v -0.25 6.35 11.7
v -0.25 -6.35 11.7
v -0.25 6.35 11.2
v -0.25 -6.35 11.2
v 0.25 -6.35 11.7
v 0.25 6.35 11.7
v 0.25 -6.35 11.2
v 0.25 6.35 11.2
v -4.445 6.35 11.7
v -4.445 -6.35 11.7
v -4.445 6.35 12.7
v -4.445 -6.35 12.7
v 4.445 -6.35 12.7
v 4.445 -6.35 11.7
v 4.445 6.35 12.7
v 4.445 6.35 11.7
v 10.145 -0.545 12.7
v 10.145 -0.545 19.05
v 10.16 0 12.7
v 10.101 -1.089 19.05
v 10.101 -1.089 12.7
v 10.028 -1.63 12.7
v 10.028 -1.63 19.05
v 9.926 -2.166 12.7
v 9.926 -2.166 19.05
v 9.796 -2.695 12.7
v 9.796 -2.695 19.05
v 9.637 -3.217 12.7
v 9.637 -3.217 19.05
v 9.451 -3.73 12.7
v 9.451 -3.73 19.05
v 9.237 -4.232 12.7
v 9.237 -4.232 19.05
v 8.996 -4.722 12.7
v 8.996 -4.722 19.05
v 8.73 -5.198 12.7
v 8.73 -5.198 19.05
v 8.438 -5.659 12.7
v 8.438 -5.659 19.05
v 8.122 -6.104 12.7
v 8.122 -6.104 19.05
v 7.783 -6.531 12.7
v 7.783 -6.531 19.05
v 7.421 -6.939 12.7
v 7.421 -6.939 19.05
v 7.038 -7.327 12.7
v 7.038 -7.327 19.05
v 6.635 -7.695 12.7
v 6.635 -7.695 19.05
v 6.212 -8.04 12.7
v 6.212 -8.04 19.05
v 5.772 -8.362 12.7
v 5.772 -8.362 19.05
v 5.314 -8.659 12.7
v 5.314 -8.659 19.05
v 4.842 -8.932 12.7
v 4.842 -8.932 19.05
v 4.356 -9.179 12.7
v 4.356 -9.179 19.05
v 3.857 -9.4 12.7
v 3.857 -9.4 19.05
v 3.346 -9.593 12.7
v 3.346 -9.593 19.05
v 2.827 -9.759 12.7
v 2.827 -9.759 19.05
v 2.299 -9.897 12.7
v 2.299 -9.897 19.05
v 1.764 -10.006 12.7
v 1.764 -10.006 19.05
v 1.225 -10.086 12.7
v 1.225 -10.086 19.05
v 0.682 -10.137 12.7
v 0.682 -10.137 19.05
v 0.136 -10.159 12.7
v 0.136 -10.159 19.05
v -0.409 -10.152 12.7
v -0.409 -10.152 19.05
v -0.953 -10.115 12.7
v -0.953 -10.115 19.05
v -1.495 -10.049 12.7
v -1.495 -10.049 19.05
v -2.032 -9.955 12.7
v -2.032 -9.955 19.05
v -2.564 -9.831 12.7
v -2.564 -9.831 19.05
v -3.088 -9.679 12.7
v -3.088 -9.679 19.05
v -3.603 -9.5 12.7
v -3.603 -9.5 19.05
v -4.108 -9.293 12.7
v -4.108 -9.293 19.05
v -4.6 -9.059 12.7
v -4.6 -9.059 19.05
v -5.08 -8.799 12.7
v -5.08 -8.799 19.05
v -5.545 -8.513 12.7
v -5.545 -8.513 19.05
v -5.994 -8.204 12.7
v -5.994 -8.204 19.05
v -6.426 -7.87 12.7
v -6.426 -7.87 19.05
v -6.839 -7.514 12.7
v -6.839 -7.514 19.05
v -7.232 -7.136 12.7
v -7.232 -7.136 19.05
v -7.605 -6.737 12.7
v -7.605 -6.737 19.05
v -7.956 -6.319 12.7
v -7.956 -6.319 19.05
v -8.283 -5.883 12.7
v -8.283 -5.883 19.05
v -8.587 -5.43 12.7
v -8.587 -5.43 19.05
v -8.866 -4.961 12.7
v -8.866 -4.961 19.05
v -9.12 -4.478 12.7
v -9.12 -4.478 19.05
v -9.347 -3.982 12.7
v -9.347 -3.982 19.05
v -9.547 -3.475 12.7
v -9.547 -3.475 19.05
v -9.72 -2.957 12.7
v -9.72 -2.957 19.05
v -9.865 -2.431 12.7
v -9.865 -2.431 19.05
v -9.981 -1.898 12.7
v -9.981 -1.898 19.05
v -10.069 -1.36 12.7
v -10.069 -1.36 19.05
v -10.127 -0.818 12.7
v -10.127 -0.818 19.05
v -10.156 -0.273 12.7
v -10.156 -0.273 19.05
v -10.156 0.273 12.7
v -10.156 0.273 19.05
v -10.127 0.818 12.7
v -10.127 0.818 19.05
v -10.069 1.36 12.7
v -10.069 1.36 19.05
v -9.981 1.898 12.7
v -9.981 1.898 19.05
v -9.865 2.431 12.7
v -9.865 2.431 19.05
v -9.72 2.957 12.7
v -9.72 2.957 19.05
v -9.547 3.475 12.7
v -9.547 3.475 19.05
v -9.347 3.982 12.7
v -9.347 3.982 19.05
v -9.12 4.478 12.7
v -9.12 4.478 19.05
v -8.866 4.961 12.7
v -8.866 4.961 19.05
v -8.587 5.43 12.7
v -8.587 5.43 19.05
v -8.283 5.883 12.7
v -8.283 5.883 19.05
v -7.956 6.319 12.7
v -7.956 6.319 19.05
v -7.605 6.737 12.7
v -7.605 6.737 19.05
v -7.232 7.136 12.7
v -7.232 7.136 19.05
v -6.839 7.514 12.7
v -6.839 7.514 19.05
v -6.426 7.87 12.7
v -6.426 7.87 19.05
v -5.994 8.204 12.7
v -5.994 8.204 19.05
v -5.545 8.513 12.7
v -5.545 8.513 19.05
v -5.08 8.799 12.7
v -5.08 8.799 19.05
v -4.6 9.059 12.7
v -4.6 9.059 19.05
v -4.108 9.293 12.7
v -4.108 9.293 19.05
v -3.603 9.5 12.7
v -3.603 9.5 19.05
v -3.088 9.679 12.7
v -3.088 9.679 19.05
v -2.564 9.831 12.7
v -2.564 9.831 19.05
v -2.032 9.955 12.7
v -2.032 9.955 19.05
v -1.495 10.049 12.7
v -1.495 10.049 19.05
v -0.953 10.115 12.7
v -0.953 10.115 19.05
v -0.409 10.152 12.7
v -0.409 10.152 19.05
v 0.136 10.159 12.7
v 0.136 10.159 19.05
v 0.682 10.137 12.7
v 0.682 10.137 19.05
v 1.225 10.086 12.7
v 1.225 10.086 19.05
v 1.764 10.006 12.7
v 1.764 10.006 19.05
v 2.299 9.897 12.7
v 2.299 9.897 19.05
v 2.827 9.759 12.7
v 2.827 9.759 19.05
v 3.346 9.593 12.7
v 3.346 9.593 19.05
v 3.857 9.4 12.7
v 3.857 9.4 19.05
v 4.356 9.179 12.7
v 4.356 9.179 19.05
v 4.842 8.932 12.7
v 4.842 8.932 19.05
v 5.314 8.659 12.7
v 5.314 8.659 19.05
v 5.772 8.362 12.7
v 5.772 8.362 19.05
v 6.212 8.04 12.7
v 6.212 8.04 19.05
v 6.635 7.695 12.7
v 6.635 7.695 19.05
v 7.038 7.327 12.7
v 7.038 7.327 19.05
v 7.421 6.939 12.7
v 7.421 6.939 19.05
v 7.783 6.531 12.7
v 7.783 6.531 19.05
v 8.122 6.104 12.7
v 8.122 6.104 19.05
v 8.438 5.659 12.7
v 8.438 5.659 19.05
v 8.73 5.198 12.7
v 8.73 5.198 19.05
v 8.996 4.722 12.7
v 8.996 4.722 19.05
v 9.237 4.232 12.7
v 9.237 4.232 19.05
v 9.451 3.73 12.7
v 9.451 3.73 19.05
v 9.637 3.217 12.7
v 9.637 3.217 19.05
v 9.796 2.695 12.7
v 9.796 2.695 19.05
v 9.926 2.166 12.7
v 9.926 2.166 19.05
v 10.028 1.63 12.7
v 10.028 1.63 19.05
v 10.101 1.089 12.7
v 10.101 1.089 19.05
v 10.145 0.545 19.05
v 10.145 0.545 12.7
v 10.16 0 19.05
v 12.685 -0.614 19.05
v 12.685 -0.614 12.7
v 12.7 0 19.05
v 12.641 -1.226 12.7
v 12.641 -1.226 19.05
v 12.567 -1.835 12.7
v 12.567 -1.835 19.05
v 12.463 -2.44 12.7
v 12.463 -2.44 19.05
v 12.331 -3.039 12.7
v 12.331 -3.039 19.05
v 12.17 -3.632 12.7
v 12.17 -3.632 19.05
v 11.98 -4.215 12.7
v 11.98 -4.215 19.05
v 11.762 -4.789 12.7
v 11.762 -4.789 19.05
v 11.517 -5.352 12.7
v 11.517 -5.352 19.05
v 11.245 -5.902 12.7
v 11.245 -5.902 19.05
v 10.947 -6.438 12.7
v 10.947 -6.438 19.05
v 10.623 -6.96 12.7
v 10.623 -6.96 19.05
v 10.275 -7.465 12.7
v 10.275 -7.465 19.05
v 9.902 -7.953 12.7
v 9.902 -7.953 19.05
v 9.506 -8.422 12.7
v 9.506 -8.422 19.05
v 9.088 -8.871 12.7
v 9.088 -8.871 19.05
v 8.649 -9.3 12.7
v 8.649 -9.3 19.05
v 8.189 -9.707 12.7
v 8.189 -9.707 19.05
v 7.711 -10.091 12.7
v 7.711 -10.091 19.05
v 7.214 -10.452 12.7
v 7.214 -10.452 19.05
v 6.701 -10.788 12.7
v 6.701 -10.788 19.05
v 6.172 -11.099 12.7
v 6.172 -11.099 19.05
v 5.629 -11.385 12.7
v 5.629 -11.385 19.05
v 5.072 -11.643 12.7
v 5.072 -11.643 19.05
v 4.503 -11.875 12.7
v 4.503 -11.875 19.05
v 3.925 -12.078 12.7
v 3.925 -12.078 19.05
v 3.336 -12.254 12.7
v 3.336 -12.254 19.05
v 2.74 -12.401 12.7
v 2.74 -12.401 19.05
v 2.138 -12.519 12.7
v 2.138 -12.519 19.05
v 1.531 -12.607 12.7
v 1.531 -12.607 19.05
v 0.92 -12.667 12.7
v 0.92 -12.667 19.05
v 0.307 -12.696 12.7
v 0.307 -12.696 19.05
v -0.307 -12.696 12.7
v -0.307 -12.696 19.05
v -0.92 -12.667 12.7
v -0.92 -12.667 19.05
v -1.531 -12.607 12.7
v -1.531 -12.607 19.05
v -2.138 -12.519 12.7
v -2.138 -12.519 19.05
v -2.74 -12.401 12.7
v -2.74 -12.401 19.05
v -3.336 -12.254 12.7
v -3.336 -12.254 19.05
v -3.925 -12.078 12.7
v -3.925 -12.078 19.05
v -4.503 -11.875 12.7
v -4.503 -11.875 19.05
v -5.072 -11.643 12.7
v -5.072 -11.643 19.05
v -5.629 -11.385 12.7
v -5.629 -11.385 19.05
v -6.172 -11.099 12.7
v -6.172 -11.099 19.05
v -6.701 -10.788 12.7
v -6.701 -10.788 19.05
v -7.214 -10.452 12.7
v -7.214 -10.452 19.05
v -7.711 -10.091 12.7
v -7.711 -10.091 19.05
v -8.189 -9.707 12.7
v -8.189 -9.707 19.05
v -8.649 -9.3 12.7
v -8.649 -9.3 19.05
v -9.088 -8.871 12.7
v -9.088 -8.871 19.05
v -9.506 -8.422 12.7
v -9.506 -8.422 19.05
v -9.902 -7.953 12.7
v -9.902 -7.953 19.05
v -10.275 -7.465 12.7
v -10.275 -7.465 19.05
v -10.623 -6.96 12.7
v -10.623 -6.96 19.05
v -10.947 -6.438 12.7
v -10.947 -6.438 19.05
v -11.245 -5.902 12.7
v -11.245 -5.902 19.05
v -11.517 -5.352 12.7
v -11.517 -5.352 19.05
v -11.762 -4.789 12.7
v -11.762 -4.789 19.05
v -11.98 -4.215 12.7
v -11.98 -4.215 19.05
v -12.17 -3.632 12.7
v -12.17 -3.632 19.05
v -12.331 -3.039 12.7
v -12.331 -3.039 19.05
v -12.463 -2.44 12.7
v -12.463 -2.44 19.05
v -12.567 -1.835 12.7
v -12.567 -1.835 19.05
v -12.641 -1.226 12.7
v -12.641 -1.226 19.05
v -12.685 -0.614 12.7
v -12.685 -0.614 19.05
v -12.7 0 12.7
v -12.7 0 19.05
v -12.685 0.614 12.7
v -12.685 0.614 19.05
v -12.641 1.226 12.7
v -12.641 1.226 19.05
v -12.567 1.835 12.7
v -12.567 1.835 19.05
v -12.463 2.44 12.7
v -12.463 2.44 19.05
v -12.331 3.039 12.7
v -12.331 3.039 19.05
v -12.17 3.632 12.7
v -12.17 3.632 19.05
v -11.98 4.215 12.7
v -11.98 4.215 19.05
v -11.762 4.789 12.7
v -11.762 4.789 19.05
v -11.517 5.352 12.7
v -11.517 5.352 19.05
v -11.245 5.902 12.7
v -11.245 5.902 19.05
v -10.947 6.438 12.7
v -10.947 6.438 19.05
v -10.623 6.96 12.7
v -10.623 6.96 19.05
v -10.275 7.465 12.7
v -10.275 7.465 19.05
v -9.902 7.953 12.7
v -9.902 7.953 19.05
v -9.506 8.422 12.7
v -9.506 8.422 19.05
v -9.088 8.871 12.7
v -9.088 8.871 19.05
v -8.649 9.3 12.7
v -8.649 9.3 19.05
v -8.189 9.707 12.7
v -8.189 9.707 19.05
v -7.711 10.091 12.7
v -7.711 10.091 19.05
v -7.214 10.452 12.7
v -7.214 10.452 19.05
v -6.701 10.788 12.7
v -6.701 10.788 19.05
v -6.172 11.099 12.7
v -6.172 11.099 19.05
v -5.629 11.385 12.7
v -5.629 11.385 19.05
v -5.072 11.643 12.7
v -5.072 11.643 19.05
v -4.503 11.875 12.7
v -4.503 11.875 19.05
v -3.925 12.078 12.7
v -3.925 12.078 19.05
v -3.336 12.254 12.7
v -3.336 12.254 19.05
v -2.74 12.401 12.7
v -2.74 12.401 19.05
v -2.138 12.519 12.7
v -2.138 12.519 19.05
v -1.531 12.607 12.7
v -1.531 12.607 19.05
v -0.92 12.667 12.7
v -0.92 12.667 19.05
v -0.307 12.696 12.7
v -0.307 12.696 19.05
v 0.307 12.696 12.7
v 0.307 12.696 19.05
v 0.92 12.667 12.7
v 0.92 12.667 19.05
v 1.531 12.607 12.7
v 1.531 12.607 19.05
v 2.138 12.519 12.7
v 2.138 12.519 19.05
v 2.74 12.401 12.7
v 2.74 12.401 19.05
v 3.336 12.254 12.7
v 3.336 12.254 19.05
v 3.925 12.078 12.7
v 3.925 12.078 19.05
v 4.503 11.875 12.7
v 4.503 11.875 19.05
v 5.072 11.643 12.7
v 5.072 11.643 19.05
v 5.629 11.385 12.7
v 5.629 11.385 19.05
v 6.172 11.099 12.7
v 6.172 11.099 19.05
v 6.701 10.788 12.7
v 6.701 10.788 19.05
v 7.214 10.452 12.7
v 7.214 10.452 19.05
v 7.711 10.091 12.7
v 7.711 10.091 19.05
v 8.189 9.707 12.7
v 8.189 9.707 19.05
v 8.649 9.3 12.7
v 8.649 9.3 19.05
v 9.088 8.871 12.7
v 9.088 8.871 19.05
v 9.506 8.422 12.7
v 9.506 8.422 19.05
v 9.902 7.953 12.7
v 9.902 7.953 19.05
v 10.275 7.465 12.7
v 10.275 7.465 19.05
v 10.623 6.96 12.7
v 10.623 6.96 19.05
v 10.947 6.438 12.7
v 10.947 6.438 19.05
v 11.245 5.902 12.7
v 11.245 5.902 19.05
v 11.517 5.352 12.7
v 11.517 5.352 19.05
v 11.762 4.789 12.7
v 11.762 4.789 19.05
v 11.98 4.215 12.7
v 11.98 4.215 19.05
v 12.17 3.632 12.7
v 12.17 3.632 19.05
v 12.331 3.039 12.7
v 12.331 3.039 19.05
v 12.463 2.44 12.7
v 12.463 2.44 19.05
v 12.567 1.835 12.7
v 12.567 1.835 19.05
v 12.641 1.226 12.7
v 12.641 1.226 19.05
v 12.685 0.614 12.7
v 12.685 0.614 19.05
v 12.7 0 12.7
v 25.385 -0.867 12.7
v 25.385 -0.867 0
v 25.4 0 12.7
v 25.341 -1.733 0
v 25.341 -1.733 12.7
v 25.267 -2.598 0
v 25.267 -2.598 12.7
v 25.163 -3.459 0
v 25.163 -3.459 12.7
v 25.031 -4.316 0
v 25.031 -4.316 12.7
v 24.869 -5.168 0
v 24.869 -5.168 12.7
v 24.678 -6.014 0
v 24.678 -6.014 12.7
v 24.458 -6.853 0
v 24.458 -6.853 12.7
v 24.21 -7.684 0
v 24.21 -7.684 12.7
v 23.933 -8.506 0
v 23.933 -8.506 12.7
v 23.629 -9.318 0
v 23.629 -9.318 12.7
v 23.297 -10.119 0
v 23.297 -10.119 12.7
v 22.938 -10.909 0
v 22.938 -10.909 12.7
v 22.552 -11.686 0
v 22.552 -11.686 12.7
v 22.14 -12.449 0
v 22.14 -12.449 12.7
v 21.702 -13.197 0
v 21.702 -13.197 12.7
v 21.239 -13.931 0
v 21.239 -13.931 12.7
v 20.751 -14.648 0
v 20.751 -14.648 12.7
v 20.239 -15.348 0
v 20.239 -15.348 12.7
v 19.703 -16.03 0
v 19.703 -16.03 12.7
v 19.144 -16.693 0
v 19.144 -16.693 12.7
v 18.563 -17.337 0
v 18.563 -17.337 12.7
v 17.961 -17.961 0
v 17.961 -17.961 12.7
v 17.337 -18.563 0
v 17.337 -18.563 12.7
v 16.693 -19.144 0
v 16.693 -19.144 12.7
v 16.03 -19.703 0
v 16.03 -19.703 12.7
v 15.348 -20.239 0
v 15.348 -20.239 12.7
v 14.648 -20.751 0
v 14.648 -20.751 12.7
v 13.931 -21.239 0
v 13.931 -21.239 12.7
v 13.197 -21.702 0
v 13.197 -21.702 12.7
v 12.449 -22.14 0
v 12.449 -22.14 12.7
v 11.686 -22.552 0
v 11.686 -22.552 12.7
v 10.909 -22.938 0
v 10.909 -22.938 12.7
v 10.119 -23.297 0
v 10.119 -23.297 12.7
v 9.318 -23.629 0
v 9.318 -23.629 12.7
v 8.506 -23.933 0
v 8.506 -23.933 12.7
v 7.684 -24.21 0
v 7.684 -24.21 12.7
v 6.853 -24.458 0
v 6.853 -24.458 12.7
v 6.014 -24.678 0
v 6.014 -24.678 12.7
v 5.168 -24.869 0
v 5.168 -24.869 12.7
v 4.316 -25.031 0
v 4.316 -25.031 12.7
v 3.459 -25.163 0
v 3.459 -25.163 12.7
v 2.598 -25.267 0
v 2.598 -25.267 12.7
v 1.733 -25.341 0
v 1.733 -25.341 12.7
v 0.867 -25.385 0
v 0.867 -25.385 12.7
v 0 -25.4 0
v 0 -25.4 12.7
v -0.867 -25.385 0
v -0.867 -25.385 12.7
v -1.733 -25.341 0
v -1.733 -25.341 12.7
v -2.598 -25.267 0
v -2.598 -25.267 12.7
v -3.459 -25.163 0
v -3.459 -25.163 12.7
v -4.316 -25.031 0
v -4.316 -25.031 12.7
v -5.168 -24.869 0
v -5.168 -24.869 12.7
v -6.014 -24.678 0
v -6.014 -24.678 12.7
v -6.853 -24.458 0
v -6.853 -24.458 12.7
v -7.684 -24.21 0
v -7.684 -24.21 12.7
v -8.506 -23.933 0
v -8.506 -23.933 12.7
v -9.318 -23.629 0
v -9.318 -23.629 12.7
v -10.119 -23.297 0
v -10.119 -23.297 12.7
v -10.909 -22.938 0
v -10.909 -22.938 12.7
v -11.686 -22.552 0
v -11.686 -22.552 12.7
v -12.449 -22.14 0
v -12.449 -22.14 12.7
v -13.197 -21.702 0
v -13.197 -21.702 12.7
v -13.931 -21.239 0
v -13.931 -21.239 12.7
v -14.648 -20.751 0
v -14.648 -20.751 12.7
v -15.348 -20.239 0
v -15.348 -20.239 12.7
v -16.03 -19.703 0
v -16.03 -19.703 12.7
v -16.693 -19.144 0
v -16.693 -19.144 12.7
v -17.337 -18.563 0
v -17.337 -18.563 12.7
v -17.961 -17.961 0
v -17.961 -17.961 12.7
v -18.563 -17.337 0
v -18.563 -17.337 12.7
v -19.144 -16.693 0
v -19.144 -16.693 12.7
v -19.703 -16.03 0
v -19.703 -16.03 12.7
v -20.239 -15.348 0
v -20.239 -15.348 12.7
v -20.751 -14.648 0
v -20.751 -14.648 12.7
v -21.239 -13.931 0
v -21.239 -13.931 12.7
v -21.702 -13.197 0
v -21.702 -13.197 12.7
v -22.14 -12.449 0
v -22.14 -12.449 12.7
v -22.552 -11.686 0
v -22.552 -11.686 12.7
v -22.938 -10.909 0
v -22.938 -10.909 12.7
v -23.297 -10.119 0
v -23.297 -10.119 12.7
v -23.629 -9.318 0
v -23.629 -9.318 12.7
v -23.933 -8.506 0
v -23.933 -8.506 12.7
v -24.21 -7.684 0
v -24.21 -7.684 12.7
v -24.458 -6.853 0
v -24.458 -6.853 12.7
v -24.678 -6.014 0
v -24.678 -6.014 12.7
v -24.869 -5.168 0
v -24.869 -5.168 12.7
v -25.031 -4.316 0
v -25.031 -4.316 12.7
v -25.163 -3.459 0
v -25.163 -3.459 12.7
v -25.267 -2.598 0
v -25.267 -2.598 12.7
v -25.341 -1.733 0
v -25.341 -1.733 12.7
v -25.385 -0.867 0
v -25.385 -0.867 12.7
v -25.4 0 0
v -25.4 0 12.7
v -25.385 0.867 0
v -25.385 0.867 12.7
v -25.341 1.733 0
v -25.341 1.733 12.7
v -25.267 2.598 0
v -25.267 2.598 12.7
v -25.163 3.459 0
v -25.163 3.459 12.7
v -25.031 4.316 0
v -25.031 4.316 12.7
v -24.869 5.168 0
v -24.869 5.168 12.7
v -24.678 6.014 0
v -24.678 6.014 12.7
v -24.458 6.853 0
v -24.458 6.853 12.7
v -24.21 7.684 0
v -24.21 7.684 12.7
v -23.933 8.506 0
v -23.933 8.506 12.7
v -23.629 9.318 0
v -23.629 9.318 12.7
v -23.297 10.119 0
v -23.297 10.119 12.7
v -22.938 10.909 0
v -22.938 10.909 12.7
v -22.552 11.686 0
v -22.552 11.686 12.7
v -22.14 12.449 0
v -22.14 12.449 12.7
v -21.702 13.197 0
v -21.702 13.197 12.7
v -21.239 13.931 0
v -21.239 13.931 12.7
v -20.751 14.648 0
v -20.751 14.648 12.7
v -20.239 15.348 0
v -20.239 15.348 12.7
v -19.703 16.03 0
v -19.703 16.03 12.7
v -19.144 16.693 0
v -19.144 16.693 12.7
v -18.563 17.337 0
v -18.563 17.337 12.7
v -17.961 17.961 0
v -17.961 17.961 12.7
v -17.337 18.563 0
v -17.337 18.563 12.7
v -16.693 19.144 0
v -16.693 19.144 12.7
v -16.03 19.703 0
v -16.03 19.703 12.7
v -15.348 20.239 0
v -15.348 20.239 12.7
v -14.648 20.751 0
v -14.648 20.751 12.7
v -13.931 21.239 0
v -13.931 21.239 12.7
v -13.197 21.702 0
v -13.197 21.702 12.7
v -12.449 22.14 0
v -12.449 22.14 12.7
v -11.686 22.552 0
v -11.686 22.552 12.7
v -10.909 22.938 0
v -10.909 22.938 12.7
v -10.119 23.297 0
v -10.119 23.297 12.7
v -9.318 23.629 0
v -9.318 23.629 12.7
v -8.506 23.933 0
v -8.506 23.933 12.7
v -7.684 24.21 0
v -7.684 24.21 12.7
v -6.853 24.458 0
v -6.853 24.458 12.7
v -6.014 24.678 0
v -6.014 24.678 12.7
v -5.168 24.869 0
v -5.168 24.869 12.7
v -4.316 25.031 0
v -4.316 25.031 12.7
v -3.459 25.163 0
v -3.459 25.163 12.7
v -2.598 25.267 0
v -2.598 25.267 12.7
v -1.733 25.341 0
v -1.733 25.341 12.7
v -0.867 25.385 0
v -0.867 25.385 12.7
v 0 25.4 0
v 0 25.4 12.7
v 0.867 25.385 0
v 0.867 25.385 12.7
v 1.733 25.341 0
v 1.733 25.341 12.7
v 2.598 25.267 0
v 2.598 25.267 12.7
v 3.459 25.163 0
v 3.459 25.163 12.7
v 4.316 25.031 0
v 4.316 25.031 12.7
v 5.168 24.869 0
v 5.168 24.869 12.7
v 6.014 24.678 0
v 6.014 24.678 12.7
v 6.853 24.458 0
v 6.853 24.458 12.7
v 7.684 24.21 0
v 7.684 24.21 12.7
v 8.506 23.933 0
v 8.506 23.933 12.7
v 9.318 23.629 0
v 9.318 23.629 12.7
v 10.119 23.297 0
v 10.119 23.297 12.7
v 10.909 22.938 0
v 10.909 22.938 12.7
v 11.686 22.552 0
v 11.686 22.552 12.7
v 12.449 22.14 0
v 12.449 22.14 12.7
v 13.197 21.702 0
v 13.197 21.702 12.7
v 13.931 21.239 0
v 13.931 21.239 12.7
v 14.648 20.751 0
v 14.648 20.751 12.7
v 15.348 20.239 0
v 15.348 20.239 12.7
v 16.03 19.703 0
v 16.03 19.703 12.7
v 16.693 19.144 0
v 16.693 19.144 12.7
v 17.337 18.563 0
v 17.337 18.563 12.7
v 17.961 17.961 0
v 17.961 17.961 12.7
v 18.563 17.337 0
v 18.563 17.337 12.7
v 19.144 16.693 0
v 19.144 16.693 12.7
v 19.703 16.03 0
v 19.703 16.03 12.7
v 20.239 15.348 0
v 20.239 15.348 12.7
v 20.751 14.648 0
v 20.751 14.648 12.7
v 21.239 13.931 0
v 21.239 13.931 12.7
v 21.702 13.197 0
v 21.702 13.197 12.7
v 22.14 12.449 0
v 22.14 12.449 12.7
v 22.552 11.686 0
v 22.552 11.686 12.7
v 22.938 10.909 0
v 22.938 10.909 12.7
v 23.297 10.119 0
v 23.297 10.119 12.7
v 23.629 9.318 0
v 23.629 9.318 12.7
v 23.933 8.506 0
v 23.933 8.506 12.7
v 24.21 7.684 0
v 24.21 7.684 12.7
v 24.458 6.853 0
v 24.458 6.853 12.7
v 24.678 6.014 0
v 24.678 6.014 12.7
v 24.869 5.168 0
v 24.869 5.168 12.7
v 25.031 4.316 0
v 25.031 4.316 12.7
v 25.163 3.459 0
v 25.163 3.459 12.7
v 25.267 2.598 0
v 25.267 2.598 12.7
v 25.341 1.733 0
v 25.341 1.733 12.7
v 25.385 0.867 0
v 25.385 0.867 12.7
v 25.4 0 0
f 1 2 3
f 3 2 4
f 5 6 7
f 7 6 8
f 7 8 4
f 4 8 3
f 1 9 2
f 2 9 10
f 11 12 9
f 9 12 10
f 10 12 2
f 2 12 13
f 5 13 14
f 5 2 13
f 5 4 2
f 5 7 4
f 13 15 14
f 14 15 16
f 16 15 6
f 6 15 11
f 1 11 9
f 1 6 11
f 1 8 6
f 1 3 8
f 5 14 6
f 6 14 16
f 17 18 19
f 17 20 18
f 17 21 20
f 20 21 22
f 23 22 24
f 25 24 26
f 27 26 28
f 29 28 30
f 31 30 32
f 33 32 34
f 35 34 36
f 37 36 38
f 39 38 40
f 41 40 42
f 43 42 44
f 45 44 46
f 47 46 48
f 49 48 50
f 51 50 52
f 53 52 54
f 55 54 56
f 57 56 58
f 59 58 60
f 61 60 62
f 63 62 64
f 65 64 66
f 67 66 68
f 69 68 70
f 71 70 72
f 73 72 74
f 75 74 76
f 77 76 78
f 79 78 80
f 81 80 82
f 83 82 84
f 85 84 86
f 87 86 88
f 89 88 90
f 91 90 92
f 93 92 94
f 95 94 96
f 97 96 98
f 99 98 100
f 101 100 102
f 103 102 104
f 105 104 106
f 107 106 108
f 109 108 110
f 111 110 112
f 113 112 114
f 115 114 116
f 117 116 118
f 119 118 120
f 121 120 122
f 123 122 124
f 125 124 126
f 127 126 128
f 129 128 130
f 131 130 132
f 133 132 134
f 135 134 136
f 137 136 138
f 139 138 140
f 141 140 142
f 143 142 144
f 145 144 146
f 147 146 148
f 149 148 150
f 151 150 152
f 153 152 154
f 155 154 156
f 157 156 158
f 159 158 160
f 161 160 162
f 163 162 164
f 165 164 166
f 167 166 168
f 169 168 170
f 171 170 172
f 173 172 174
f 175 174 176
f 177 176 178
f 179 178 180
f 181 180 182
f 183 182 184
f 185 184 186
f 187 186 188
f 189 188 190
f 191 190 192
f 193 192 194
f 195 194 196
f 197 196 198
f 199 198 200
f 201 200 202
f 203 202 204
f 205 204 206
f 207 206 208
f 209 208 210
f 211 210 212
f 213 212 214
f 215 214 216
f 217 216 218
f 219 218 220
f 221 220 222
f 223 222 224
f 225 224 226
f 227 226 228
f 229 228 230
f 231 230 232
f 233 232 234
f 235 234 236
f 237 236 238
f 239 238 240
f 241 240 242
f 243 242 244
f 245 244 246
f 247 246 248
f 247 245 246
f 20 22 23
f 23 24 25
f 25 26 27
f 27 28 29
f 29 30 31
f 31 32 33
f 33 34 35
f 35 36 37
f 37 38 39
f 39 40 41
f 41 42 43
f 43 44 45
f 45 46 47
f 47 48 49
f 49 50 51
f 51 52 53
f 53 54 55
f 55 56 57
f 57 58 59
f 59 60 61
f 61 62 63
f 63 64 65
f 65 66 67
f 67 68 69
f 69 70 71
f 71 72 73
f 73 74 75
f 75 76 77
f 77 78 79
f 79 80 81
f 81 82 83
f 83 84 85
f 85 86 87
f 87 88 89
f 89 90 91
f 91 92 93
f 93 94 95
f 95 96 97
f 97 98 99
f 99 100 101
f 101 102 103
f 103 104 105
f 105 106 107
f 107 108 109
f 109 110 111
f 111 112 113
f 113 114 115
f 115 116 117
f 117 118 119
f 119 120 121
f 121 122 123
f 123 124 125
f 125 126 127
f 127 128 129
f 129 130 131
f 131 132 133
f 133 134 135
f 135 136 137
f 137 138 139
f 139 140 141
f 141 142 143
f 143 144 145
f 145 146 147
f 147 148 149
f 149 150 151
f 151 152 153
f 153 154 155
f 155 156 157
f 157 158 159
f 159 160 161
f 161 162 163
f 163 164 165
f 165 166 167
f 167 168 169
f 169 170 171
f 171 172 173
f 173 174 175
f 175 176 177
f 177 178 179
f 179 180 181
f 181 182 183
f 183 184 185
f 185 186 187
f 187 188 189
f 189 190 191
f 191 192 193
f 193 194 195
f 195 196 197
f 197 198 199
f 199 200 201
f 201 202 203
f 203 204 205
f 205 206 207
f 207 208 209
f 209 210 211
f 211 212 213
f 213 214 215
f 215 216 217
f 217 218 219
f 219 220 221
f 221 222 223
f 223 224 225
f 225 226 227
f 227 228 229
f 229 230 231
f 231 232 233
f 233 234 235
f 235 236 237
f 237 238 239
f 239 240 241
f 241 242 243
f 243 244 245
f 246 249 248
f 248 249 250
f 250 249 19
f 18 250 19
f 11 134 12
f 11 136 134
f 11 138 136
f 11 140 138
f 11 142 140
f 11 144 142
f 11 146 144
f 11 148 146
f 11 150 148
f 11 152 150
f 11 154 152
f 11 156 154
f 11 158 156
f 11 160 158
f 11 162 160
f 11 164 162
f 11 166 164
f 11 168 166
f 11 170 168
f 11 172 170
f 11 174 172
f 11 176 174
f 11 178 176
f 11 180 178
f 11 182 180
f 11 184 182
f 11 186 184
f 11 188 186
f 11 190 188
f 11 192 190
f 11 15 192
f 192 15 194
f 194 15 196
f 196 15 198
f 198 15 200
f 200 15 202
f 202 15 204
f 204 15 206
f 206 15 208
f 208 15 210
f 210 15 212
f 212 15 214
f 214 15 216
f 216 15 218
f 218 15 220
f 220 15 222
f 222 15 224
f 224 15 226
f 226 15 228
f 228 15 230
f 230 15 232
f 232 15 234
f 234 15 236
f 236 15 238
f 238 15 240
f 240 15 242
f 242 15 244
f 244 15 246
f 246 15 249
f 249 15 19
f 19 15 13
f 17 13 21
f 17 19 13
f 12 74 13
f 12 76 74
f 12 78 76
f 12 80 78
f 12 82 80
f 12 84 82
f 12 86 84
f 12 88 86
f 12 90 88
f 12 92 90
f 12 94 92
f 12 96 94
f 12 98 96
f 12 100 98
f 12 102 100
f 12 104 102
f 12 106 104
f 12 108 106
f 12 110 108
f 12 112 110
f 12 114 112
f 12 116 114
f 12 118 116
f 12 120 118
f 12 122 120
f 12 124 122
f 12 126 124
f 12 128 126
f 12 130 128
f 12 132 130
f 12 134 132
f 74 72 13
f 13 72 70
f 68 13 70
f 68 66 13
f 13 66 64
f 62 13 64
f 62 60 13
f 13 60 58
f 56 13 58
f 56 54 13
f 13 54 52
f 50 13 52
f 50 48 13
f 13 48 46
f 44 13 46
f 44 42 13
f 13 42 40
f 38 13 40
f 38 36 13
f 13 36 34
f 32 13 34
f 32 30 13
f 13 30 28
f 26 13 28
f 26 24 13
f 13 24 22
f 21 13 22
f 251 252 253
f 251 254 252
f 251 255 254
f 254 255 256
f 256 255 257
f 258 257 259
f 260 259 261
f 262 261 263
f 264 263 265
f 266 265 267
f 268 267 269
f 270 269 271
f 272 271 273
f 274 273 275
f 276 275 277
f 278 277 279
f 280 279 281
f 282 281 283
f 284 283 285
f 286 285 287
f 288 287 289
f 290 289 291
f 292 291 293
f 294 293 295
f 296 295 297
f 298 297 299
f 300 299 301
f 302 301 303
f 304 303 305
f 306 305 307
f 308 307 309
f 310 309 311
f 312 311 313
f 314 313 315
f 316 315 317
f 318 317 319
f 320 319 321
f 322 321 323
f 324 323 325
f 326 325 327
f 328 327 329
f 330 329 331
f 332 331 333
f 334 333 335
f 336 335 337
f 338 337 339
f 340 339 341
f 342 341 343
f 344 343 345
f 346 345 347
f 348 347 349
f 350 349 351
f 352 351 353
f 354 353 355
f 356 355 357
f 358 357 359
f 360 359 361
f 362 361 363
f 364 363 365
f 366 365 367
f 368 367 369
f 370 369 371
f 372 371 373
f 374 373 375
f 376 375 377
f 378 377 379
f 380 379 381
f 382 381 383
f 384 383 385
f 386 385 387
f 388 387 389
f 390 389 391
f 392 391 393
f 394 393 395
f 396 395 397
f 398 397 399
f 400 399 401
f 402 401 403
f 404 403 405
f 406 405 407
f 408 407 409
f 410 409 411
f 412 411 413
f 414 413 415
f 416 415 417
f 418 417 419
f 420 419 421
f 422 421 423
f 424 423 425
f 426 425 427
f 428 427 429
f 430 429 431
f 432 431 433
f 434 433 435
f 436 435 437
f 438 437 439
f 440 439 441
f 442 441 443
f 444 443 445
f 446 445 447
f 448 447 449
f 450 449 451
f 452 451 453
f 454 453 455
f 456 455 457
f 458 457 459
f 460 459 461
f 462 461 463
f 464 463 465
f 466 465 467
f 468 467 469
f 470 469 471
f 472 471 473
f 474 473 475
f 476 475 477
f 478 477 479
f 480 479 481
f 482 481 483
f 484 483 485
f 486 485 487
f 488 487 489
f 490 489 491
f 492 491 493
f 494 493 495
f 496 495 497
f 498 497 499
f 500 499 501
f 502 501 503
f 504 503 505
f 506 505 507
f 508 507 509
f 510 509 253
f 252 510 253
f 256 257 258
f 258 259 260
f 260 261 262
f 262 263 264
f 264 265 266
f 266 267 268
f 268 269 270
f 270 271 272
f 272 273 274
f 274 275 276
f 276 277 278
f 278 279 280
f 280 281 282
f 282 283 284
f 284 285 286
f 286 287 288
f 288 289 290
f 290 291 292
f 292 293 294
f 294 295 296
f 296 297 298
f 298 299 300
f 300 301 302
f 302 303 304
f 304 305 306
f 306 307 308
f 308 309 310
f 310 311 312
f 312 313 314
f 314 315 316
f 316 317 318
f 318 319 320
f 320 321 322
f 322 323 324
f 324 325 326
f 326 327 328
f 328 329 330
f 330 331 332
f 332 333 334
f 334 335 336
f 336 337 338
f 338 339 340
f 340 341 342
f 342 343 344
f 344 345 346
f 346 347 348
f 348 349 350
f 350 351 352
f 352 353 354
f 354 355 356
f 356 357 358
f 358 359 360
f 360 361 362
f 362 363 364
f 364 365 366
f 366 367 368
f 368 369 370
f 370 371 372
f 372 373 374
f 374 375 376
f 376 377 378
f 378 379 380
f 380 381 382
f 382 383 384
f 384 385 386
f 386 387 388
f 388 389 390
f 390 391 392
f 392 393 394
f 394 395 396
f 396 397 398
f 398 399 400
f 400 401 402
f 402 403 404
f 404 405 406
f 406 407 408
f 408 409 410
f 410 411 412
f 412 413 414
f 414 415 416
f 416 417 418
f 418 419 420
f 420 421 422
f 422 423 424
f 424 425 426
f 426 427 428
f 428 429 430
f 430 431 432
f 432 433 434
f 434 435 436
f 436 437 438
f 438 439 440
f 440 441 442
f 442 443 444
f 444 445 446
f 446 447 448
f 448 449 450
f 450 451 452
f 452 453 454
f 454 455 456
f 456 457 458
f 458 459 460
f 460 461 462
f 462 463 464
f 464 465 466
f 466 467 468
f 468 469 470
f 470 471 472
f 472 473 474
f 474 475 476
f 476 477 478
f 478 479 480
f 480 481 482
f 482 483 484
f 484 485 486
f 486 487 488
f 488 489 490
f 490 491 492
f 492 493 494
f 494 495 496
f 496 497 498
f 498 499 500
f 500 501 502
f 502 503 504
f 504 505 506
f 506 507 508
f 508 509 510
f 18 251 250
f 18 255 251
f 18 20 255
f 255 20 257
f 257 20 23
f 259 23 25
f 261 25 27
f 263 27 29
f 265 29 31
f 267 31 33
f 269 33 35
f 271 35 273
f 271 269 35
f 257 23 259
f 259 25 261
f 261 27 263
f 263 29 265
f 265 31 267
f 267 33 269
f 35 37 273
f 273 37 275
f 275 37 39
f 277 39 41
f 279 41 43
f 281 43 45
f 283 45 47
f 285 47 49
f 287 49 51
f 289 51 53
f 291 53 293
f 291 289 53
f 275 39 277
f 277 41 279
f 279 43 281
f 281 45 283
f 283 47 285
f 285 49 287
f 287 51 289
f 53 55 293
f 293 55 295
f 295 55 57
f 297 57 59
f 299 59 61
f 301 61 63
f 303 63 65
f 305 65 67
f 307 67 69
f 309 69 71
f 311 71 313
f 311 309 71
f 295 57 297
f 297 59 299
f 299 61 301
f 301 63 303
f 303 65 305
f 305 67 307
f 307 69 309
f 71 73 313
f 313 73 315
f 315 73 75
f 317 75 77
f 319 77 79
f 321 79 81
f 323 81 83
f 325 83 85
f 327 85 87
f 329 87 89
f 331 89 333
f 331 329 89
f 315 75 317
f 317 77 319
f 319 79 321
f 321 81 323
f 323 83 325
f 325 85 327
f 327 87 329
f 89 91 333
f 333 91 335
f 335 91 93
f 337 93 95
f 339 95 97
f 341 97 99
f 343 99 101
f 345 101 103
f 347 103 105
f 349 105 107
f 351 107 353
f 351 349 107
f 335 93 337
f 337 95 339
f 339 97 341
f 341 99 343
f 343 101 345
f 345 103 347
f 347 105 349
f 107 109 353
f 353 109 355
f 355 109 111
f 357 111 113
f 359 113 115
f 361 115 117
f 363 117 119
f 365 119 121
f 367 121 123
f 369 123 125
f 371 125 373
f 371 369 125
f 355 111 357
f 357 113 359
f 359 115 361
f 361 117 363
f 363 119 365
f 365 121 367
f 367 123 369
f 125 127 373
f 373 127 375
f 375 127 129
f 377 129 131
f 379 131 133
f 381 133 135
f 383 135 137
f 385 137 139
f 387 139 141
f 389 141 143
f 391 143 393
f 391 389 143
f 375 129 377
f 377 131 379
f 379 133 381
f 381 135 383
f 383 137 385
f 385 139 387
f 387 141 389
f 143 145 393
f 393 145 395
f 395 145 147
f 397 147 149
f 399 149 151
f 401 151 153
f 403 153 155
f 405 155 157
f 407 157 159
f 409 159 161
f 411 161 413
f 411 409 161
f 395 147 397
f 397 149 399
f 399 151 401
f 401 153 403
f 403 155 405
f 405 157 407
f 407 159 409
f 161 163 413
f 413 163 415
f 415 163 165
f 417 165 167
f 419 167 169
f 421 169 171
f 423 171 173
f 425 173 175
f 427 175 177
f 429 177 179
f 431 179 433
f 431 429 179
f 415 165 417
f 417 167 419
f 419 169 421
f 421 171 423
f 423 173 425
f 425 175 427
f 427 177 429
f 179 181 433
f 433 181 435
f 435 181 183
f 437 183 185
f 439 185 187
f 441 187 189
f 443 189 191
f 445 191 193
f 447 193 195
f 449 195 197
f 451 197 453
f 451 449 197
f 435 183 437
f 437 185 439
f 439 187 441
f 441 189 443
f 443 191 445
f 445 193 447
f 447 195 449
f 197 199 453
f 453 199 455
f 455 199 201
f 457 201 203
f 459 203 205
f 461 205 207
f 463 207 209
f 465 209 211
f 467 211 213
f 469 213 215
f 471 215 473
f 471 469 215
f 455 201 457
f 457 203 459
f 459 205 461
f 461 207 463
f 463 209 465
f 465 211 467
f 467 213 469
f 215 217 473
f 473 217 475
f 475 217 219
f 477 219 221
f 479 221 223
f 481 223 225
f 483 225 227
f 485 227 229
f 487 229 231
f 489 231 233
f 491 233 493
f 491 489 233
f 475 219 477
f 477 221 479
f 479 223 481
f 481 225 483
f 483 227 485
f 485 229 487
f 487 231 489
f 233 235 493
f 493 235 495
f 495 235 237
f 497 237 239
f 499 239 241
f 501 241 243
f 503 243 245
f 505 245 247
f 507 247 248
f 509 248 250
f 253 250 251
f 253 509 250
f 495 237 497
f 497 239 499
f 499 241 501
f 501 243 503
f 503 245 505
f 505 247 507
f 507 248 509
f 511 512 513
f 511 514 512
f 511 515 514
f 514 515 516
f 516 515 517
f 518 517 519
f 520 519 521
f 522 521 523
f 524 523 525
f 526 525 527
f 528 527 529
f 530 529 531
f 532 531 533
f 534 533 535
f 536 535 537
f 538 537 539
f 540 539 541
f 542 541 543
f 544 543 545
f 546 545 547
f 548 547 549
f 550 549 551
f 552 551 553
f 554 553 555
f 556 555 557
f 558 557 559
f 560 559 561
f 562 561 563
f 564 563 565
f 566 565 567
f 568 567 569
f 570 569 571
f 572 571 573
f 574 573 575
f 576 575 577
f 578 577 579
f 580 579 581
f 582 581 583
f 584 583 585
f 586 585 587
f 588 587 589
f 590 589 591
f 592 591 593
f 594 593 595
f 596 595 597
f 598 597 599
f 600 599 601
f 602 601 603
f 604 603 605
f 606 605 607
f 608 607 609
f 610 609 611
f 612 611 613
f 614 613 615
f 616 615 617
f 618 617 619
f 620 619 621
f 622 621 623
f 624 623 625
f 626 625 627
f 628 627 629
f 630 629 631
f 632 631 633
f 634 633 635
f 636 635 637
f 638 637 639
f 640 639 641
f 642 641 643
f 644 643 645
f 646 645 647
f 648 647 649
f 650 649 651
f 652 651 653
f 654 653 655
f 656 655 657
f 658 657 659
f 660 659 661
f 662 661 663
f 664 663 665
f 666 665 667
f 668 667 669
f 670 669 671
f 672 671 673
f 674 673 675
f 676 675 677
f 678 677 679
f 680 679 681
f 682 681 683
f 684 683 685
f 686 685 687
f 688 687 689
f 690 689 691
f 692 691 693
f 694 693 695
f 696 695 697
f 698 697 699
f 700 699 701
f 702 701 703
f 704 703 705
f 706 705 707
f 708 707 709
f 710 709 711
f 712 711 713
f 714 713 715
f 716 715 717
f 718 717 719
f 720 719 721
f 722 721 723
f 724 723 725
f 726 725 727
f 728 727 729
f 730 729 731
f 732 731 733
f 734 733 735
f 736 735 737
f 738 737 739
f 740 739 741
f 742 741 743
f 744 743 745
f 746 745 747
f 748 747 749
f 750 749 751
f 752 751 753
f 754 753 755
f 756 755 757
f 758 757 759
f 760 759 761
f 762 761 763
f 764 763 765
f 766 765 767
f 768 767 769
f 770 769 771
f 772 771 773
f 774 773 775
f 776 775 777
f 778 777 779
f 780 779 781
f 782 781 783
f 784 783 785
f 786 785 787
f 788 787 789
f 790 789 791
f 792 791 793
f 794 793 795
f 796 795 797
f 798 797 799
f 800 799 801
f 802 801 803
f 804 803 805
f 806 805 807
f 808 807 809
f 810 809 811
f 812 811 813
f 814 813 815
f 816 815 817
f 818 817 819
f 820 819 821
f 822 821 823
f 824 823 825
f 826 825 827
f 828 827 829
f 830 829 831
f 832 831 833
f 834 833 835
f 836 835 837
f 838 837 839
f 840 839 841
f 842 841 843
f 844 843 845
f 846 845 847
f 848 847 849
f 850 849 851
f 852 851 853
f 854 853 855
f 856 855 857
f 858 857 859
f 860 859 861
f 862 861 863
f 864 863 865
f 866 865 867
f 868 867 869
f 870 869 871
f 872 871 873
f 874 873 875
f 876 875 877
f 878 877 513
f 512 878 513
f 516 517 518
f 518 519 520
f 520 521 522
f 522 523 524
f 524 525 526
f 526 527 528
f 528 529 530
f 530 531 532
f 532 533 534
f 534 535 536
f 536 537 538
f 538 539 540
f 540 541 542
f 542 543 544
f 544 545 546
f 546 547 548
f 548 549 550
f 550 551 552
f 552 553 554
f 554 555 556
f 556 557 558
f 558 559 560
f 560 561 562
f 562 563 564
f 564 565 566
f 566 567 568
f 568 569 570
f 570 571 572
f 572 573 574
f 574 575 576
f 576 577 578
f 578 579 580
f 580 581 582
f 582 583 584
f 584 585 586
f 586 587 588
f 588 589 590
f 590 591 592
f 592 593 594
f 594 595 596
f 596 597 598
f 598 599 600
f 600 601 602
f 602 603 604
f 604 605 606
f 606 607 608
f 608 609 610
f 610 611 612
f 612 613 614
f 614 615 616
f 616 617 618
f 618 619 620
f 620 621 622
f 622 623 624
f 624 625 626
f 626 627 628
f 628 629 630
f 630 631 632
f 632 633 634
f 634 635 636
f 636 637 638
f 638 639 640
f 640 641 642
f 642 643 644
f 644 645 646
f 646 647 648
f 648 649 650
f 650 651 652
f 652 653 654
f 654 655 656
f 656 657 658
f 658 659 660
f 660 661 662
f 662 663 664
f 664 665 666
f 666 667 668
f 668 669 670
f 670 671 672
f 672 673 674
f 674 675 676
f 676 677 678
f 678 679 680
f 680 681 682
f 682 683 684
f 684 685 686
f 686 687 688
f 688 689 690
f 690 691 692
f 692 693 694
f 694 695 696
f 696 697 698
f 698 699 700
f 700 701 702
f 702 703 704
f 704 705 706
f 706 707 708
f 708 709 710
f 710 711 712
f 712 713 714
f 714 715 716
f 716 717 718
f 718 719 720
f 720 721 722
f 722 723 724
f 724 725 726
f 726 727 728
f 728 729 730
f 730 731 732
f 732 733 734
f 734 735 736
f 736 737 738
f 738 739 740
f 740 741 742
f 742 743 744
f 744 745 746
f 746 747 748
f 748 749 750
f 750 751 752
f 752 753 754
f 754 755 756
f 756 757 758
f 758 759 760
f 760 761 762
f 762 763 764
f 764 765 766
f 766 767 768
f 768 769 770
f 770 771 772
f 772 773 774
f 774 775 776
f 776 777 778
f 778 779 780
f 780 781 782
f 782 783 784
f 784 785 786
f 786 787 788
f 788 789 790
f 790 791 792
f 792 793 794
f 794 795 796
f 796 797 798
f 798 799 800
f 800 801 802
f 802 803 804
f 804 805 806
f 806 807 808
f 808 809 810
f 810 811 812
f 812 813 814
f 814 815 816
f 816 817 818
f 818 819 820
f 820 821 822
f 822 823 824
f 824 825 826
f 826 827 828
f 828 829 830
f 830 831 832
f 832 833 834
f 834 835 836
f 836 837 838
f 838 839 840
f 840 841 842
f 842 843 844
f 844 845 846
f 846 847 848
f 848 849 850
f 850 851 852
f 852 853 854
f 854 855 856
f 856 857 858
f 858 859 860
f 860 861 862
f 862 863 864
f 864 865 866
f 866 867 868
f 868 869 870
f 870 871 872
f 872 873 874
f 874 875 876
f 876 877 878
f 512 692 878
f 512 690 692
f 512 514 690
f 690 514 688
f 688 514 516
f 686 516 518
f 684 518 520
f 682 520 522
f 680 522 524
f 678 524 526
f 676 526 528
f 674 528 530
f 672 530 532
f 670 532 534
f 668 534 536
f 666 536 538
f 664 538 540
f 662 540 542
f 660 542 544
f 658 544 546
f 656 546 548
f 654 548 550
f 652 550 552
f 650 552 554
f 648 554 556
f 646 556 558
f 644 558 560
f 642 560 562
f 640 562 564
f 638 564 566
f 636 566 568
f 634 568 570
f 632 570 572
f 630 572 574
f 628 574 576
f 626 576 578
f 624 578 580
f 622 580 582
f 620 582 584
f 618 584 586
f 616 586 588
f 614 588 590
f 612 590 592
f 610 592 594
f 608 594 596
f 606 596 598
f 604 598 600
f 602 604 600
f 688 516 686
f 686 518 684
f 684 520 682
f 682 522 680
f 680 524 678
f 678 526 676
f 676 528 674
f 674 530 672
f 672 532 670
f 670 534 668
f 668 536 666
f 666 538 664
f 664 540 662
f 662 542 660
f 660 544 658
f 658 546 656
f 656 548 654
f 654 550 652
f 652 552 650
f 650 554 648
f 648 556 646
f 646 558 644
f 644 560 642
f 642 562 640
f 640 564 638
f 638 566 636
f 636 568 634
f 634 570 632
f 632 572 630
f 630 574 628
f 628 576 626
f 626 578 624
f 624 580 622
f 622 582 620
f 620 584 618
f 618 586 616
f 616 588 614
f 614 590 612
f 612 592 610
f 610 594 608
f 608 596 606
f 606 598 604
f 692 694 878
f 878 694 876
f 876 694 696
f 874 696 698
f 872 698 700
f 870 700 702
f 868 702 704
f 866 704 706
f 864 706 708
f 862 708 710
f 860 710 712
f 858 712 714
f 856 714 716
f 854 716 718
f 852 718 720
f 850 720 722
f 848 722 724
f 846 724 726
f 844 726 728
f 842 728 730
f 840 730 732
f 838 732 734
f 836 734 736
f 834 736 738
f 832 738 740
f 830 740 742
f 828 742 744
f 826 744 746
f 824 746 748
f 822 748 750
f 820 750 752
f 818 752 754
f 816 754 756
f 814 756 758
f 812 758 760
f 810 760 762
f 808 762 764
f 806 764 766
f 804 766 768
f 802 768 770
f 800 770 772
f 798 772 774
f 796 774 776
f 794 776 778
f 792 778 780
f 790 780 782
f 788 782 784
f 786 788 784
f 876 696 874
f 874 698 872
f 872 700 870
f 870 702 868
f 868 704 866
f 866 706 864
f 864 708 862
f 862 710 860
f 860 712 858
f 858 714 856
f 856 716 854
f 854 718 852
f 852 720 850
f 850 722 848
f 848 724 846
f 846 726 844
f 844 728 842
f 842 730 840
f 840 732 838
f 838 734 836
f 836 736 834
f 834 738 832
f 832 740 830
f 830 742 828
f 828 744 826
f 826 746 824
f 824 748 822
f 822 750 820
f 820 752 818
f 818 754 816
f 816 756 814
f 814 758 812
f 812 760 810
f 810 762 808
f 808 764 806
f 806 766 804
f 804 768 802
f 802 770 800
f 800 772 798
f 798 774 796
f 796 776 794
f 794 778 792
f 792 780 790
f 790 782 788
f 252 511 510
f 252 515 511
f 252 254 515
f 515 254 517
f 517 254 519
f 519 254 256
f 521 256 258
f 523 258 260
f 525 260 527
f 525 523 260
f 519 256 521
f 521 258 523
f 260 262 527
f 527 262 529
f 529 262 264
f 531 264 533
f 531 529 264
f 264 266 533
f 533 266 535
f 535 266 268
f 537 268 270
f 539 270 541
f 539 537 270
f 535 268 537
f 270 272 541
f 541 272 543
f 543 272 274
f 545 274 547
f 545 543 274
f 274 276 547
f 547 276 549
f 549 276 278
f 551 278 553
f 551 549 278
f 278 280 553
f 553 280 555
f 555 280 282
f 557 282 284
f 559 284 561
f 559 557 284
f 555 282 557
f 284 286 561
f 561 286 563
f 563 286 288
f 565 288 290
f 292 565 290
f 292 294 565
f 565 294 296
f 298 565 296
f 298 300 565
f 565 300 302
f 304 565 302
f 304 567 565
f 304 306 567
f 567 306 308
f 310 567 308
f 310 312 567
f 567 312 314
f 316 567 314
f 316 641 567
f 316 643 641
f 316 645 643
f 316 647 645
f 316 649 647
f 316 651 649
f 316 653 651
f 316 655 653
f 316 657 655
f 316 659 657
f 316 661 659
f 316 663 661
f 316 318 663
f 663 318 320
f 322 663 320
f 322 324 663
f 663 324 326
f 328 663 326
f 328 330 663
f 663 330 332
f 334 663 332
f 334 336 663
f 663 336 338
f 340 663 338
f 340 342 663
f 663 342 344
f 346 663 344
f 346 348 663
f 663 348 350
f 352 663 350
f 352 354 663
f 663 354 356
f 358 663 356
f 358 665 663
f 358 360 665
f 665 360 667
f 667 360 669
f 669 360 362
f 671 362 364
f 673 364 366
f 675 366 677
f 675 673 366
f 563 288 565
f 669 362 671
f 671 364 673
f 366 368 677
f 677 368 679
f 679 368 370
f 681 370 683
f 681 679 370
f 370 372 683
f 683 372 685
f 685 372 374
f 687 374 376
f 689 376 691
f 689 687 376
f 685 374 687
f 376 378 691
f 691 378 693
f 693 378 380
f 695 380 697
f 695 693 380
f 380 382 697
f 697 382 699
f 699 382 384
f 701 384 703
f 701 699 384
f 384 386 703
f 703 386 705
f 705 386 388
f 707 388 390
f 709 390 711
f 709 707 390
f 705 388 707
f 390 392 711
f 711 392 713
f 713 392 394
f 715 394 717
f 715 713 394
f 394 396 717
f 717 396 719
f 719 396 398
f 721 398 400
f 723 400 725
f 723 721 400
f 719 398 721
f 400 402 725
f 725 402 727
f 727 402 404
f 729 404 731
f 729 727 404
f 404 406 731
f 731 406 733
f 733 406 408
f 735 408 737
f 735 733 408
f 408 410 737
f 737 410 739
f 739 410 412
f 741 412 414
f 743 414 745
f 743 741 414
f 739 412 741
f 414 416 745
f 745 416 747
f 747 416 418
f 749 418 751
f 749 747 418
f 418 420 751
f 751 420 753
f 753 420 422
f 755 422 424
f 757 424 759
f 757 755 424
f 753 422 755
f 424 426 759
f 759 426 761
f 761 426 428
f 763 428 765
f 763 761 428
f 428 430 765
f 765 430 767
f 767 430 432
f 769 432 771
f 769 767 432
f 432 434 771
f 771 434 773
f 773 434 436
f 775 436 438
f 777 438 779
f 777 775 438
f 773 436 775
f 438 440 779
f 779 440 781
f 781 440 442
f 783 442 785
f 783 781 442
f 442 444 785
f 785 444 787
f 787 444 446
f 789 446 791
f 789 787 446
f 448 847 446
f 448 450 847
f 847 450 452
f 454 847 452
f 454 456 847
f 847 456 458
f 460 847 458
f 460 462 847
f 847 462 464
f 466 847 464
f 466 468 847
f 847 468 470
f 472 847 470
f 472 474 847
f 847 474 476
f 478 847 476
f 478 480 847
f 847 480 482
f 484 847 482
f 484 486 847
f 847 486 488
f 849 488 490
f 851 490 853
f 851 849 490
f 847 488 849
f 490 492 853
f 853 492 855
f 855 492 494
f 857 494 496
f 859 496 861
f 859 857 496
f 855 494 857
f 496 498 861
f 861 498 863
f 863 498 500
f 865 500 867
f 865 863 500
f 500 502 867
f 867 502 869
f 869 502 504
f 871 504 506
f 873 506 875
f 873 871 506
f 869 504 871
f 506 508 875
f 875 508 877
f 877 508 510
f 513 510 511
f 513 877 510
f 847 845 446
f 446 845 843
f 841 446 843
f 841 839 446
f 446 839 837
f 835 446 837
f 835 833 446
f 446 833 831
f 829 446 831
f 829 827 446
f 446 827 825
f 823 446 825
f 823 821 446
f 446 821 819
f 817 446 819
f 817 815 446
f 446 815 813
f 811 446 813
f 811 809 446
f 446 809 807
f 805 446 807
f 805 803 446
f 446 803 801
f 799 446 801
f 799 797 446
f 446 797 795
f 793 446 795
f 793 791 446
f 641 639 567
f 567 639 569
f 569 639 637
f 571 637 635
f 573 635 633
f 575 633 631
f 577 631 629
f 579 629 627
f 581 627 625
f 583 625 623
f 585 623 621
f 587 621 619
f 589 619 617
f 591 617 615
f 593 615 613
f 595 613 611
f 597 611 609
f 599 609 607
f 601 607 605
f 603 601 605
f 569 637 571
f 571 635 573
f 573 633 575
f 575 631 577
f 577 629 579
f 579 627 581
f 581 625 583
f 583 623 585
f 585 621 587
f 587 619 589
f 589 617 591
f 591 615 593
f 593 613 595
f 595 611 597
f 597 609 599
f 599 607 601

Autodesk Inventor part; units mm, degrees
ref_plane "YZ Plane" through (0, 0, 0) normal (1, 0, 0) x (0, 1, 0)
ref_plane "XZ Plane" through (0, 0, 0) normal (0, 1, 0) x (-1, 0, 0)
ref_plane "XY Plane" through (0, 0, 0) normal (0, 0, 1) x (1, 0, 0)
sketch "Sketch1" plane through (0, 0, 0) normal (0, 0, 1) x (1, 0, 0)
  line L0 (-37.1, -32.05) -> (37.1, -32.05) projected
  line L1 (37.1, 32.05) -> (-37.1, 32.05) projected
  circle A0 centre (0, 0) radius 25.4
  line L2 (37.1, -32.05) -> (37.1, 32.05) projected
  line L3 (-37.1, 32.05) -> (-37.1, -32.05) projected
  dimension "d0" = 50.8
extrude "Lens body" add sketch "Sketch1" along normal blind 12.7 contours A0
sketch "Sketch2" plane through (0, 0, 12.7) normal (0, 0, 1) x (1, 0, 0)
  circle A0 centre (0, 0) radius 25.4 projected
  circle A1 centre (0, 0) radius 12.7
  dimension "d3" = 25.4
extrude "Ring" add sketch "Sketch2" along normal blind 6.35 contours A1
sketch "Sketch5" plane through (0, 0, 19.05) normal (0, 0, 1) x (1, 0, 0)
  circle A0 centre (0, 0) radius 12.7 projected
  circle A1 centre (0, 0) radius 10.16
  dimension "d14" = 2.54
extrude "Pit" cut sketch "Sketch5" against normal blind 6.35 contours A1
sketch "Sketch6" plane through (0, 0, 12.7) normal (0, 0, 1) x (1, 0, 0)
  line L0 (4.445, 6.35) -> (-4.445, 6.35)
  line L1 (-4.445, 6.35) -> (-4.445, -6.35)
  line L2 (-4.445, -6.35) -> (4.445, -6.35)
  line L3 (4.445, -6.35) -> (4.445, 6.35)
  line L4 (4.445, 6.35) -> (-4.445, -6.35) construction
  line L5 (-4.445, 6.35) -> (4.445, -6.35) construction
  point P0 (0, 0)
  dimension "d17" = 12.7
  dimension "d18" = 8.89
extrude "Shutters" cut sketch "Sketch6" against normal blind 1
sketch "Sketch7" plane through (0, 0, 11.7) normal (0, 0, 1) x (1, 0, 0)
  line L0 (-4.445, 6.35) -> (4.445, 6.35) projected
  line L1 (-4.445, -6.35) -> (-4.445, 6.35) projected
  line L2 (4.445, -6.35) -> (-4.445, -6.35) projected
  line L3 (4.445, 6.35) -> (4.445, -6.35) projected
  line L4 (4.445, -6.35) -> (-4.445, -6.35) projected
  line L5 (-0.25, 6.35) -> (0.25, 6.35)
  line L6 (0.25, 6.35) -> (0.25, -6.35)
  line L7 (0.25, -6.35) -> (-0.25, -6.35)
  line L8 (-0.25, -6.35) -> (-0.25, 6.35)
  line L9 (-0.25, 6.35) -> (0.25, -6.35) construction
  line L10 (0.25, 6.35) -> (-0.25, -6.35) construction
  point P0 (0, 0)
  dimension "d21" = 0.5
extrude "Extrusion7" cut sketch "Sketch7" against normal blind 0.5 contours L0 L6 L2 L8
properties part number "Lens"
